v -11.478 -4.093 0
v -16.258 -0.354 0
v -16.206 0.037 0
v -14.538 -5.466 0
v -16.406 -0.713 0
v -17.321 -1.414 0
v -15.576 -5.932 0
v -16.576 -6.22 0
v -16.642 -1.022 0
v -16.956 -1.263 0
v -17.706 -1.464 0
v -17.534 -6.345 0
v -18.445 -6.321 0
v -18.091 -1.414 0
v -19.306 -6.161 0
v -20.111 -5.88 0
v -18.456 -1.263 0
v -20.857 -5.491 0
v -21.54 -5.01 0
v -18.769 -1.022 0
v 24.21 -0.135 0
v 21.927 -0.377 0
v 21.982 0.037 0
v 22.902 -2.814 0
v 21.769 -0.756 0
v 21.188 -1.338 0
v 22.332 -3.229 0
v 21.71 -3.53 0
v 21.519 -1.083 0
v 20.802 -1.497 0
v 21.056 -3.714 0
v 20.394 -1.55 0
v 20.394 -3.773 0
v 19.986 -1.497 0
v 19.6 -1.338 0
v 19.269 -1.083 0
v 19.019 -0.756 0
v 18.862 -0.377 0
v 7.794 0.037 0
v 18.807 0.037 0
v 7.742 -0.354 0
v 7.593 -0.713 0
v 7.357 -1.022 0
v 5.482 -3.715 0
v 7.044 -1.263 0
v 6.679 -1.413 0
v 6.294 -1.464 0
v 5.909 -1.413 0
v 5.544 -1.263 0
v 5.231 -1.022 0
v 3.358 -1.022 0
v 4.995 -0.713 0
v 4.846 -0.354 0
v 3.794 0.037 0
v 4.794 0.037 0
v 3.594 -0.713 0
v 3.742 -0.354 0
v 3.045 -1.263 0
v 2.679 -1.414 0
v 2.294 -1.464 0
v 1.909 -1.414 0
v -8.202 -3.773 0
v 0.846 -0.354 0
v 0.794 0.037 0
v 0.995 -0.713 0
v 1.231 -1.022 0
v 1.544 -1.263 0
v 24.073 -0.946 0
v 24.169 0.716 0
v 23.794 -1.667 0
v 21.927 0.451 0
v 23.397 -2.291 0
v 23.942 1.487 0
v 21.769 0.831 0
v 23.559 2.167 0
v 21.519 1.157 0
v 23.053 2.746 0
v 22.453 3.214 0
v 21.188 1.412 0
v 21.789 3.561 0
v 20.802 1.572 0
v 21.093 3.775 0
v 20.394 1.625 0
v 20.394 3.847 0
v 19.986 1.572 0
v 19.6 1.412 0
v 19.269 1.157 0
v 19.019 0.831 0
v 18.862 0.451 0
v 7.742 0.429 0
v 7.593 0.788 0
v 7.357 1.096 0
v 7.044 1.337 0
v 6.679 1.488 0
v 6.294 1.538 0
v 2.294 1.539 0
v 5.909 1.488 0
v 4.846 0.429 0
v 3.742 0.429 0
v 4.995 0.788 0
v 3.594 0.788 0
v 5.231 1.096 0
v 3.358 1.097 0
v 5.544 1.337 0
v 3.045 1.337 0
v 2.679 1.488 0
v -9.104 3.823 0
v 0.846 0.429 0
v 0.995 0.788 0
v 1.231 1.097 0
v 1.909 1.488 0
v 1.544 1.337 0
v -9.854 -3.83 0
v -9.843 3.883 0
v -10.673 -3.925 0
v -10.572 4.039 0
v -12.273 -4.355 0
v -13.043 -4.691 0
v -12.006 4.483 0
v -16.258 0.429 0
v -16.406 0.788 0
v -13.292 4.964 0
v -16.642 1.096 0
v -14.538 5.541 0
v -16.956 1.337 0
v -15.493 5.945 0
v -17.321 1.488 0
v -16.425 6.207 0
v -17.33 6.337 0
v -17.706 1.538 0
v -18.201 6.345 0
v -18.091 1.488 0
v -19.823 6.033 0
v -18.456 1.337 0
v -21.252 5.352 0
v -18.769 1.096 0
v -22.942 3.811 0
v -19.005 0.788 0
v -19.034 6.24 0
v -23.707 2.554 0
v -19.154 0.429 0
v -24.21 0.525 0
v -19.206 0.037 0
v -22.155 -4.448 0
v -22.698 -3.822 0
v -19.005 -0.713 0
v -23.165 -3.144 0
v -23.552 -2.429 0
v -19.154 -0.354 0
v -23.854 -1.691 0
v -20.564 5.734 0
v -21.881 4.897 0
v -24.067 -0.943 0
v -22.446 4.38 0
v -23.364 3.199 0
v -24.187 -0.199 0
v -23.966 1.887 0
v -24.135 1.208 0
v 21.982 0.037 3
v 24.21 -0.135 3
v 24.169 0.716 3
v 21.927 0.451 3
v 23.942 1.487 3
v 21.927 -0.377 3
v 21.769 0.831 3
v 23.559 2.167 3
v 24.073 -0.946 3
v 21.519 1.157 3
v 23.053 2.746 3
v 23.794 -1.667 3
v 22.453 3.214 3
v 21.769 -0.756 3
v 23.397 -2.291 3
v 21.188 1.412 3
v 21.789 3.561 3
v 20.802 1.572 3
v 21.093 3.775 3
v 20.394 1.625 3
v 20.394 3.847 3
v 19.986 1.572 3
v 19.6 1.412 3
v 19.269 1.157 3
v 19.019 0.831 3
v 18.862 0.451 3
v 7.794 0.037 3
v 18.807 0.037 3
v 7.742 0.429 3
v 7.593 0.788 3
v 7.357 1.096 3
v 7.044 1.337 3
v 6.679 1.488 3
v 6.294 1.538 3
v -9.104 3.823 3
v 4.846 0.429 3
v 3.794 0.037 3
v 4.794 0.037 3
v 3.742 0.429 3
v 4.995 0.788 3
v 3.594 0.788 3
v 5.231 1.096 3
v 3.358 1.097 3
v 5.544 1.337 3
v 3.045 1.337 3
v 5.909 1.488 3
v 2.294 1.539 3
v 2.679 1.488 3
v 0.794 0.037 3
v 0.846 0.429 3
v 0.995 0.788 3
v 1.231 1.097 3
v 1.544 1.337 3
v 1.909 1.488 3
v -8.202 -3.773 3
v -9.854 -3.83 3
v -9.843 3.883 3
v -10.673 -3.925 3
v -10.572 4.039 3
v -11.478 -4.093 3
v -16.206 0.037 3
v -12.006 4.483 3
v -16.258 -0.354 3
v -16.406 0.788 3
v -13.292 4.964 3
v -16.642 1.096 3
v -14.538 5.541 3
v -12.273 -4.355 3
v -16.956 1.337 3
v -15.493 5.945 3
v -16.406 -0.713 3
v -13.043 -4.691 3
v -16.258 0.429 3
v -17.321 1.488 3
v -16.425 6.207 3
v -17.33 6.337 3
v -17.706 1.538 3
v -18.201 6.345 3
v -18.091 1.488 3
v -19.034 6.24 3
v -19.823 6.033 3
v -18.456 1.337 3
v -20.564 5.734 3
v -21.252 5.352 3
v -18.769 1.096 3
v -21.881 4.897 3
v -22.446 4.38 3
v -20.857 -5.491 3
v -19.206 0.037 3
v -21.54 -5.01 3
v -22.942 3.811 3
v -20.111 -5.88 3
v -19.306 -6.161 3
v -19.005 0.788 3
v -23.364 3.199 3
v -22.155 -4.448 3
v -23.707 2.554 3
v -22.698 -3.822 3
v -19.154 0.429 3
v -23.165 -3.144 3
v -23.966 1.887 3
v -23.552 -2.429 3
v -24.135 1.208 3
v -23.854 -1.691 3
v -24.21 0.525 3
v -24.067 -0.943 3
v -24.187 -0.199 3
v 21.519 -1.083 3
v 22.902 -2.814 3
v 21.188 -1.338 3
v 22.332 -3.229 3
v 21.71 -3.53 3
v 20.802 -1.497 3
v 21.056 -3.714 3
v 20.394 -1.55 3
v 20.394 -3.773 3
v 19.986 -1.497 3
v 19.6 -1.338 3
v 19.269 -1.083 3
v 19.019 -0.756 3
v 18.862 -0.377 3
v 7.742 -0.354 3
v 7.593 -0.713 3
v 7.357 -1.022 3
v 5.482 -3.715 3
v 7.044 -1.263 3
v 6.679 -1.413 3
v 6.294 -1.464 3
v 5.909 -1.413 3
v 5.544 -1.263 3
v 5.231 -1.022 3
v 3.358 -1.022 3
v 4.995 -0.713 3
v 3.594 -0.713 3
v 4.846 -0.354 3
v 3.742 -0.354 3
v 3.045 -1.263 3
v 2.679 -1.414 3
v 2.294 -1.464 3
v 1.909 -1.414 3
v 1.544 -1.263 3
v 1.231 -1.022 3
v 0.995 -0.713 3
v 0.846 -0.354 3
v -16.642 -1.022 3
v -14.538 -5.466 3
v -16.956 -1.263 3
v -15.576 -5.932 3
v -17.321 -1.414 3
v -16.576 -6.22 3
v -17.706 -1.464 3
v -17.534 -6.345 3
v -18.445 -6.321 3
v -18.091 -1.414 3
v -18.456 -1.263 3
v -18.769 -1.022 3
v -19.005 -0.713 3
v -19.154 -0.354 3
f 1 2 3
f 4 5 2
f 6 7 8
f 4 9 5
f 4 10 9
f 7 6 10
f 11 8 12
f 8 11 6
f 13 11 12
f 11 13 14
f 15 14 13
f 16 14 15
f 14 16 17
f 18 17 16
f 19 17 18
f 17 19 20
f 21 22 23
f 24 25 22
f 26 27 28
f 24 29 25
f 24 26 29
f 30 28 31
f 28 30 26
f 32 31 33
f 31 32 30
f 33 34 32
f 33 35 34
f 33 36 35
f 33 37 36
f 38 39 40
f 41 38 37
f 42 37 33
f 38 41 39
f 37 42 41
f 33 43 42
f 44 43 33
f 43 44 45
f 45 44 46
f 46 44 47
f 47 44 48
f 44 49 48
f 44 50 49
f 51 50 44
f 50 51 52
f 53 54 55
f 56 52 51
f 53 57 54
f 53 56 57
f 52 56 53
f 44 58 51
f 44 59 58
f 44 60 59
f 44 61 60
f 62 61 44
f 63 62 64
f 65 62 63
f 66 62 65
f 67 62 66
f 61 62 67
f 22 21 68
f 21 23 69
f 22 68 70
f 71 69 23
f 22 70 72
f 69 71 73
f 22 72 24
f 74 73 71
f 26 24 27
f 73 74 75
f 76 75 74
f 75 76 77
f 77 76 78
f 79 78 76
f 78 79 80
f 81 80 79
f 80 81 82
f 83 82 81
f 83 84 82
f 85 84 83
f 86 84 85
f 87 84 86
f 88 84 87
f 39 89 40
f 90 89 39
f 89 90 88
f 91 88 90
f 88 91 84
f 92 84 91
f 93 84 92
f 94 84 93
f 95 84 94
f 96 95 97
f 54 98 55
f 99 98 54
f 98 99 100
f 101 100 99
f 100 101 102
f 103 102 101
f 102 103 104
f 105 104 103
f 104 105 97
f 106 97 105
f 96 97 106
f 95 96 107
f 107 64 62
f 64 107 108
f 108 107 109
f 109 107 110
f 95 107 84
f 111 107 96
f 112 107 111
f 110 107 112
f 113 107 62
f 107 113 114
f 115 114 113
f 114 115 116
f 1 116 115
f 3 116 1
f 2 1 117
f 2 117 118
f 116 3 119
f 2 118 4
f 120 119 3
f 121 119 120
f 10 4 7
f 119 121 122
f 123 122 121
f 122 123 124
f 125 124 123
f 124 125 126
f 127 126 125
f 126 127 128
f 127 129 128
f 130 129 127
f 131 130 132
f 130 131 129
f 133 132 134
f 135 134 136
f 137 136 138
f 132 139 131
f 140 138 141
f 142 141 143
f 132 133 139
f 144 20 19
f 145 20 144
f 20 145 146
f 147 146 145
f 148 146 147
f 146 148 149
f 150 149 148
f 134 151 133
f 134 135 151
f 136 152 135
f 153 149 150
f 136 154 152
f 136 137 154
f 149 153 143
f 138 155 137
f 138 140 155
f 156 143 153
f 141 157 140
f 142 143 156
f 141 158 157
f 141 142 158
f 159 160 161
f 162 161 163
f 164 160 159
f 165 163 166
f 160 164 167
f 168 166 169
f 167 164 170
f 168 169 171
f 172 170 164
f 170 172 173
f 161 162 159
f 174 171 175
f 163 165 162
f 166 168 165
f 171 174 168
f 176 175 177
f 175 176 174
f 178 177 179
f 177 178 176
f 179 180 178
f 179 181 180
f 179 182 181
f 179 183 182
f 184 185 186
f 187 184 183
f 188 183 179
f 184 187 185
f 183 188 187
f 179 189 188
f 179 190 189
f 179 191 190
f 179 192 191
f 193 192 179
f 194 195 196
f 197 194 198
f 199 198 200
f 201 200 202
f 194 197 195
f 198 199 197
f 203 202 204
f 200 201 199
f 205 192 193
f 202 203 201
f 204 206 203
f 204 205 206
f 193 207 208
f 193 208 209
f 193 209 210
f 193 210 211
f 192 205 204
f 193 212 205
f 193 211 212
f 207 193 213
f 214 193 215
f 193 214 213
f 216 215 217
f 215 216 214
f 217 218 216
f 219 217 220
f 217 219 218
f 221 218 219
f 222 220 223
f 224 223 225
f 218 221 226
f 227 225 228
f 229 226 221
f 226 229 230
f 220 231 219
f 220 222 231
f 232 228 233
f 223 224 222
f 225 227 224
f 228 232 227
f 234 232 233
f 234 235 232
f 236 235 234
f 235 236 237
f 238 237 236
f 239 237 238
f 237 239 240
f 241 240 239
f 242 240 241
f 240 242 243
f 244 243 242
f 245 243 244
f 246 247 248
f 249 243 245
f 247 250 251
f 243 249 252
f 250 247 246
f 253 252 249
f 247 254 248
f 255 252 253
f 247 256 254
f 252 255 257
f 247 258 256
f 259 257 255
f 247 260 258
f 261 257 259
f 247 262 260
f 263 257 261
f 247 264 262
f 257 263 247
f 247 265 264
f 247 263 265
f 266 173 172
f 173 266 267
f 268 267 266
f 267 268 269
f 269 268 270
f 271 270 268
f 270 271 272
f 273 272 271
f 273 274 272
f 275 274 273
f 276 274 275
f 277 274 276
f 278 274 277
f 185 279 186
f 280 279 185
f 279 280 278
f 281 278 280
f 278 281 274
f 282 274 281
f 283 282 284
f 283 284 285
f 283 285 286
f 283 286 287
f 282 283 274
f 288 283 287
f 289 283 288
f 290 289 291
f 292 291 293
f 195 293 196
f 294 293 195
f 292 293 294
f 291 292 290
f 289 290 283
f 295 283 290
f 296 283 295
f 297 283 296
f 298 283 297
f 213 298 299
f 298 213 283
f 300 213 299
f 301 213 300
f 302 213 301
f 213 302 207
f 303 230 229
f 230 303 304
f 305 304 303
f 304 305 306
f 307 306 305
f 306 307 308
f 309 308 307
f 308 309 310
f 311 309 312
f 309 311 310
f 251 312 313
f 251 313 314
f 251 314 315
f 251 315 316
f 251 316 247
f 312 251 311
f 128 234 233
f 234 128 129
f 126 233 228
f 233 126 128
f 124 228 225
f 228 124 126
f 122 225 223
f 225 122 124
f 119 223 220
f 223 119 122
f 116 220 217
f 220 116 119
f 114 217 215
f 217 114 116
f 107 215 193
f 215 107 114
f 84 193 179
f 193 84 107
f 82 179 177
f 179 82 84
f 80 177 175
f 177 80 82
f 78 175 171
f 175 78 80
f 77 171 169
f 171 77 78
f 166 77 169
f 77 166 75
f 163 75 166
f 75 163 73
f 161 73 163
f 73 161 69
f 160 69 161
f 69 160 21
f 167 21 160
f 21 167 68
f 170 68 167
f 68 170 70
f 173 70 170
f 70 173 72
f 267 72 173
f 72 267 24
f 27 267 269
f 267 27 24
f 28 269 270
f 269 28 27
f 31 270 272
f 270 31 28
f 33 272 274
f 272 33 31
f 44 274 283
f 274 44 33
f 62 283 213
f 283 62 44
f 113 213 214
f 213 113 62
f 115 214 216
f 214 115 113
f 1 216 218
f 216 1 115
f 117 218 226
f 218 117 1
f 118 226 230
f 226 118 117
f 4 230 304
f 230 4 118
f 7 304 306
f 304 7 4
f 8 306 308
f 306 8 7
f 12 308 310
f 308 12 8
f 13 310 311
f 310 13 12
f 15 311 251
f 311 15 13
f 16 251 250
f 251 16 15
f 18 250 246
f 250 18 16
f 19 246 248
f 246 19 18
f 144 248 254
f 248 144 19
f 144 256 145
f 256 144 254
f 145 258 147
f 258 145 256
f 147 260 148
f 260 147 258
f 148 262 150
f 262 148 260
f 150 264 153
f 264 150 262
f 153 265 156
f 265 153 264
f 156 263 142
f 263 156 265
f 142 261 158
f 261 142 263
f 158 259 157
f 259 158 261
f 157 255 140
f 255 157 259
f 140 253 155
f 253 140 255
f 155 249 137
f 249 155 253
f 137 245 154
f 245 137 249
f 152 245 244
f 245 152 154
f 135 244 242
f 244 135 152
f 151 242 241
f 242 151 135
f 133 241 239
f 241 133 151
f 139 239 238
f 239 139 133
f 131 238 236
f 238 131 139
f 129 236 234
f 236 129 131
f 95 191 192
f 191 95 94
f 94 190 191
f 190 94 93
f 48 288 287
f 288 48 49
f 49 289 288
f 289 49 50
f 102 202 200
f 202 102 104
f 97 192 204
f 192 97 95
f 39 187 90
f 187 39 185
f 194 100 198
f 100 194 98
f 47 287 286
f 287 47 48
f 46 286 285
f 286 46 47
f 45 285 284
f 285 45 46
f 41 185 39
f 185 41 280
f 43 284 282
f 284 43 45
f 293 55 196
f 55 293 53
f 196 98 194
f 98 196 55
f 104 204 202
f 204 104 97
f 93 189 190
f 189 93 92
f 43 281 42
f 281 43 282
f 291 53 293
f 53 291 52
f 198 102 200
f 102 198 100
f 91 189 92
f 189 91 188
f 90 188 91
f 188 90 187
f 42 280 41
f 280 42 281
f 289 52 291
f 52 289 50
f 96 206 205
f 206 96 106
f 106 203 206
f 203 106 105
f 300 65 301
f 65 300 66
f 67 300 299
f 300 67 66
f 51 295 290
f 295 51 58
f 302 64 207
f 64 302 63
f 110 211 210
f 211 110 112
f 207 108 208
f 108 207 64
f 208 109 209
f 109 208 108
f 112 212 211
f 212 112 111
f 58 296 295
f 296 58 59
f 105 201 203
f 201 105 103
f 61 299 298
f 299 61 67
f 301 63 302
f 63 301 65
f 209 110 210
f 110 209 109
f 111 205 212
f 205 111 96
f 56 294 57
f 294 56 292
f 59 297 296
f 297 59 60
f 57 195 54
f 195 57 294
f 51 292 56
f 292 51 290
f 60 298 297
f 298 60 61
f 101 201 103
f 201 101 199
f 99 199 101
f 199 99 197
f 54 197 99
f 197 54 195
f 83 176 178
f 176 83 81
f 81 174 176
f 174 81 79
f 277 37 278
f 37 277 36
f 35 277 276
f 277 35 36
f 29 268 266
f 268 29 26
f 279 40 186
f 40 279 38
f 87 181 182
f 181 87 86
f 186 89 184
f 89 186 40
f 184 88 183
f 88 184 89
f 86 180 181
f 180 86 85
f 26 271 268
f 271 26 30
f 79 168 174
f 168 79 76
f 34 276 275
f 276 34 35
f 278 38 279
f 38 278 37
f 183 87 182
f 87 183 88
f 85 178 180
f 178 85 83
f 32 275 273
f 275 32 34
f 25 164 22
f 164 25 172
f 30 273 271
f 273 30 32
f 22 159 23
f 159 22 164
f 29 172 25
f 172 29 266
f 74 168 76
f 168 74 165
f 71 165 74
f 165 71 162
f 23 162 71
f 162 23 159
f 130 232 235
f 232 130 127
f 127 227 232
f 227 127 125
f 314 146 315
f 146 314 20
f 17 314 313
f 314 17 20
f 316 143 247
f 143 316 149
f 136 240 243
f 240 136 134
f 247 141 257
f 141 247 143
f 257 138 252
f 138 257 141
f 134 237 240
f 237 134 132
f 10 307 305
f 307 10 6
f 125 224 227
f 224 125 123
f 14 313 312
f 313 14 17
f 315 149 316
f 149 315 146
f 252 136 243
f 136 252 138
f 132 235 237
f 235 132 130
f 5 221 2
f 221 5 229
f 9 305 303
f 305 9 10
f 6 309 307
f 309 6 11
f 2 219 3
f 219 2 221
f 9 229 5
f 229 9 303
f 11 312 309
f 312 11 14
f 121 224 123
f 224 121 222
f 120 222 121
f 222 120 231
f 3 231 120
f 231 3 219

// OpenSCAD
// Module names are of the form poly_<inkscape-path-id>().  As a result,
// you can associate a polygon in this OpenSCAD program with the corresponding
// SVG element in the Inkscape document by looking for the XML element with
// the attribute id="inkscape-path-id".

// fudge value is used to ensure that subtracted solids are a tad taller
// in the z dimension than the polygon being subtracted from.  This helps
// keep the resulting .stl file manifold.
fudge = 0.1;

module poly_path873(h)
{
  scale([25.4/96, -25.4/96, 1]) union()
  {
    difference()
    {
       linear_extrude(height=h)
         polygon([[-34.407014,-14.450794],[77.080104,-14.540794],[79.720117,-14.268063],[82.351990,-13.457282],[84.860193,-12.147694],[87.129201,-10.378544],[89.043487,-8.189076],[90.487522,-5.618532],[91.345780,-2.706157],[91.502734,0.508806],[90.984140,3.575420],[89.931539,6.299240],[88.428472,8.659118],[86.558481,10.633906],[84.405108,12.202456],[82.051893,13.343621],[79.582378,14.036254],[77.080104,14.259206],[20.719264,14.041406],[-30.999984,14.259206],[-37.243458,14.475368],[-40.340171,14.834291],[-43.382764,15.468306],[-46.387240,16.459004],[-49.295689,17.729218],[-54.946594,20.659206],[-58.870515,22.419011],[-62.650394,23.508574],[-66.270265,23.980804],[-69.714160,23.888607],[-72.966113,23.284892],[-76.010155,22.222567],[-78.830320,20.754540],[-81.410640,18.933718],[-83.735149,16.813010],[-85.787879,14.445324],[-87.552862,11.883567],[-89.014132,9.180648],[-90.155722,6.389474],[-90.961663,3.562954],[-91.415990,0.753995],[-91.502734,-1.984494],[-91.219703,-4.563829],[-90.579564,-7.133095],[-89.601646,-9.654605],[-88.305282,-12.090673],[-86.709803,-14.403610],[-84.834539,-16.555730],[-82.698821,-18.509346],[-80.321981,-20.226769],[-77.723351,-21.670314],[-74.922260,-22.802293],[-71.938040,-23.585019],[-68.790022,-23.980804],[-65.497537,-23.951961],[-62.079917,-23.460803],[-58.556492,-22.469644],[-54.946594,-20.940794],[-50.235559,-18.760982],[-45.377374,-16.944094],[-39.959034,-15.265257],[-37.200894,-14.675462],[-34.407014,-14.450794]]);
       translate([0, 0, -fudge])
         linear_extrude(height=h+2*fudge)
           polygon([[29.458054,-0.140794],[29.262538,-1.620684],[28.699636,-2.976863],[27.807525,-4.143147],[26.624381,-5.053350],[25.244776,-5.623427],[23.788764,-5.813453],[22.332752,-5.623427],[20.953146,-5.053350],[19.770003,-4.143147],[18.877892,-2.976863],[18.314990,-1.620684],[18.119474,-0.140794],[18.314990,1.339095],[18.877892,2.695274],[19.770003,3.861558],[20.953146,4.771762],[22.332752,5.341838],[23.788764,5.531864],[25.244776,5.341838],[26.624381,4.771762],[27.807525,3.861558],[28.699636,2.695274],[29.262538,1.339095],[29.458054,-0.140794],[29.458054,-0.140794]]);
       translate([0, 0, -fudge])
         linear_extrude(height=h+2*fudge)
           polygon([[14.339944,-0.140794],[14.144852,-1.621074],[13.582179,-2.977690],[12.690112,-4.144405],[11.506837,-5.054981],[10.126974,-5.625303],[8.670655,-5.815410],[7.214335,-5.625303],[5.834472,-5.054981],[4.651198,-4.144405],[3.759131,-2.977690],[3.196458,-1.621074],[3.001366,-0.140794],[3.196458,1.339485],[3.759131,2.696101],[4.651198,3.862816],[5.834472,4.773393],[7.214335,5.343714],[8.670655,5.533821],[10.126974,5.343714],[11.506837,4.773393],[12.690112,3.862816],[13.582179,2.696101],[14.144852,1.339485],[14.339944,-0.140794],[14.339944,-0.140794]]);
       translate([0, 0, -fudge])
         linear_extrude(height=h+2*fudge)
           polygon([[83.080104,-0.140794],[82.872411,-1.706300],[82.276256,-3.140794],[81.332025,-4.374327],[80.080104,-5.336947],[78.620490,-5.939833],[77.080104,-6.140794],[75.539718,-5.939833],[74.080104,-5.336947],[72.828182,-4.374327],[71.883951,-3.140794],[71.287797,-1.706300],[71.080104,-0.140794],[71.287797,1.424711],[71.883951,2.859206],[72.828182,4.092738],[74.080104,5.055358],[75.539718,5.658244],[77.080104,5.859206],[78.620490,5.658244],[80.080104,5.055358],[81.332025,4.092738],[82.276256,2.859206],[82.872411,1.424711],[83.080104,-0.140794]]);
       translate([0, 0, -fudge])
         linear_extrude(height=h+2*fudge)
           polygon([[-61.250604,-0.140794],[-61.445956,-1.620835],[-62.008770,-2.977183],[-62.900864,-4.143633],[-64.084058,-5.053982],[-65.463763,-5.624153],[-66.919894,-5.814210],[-68.376025,-5.624153],[-69.755730,-5.053982],[-70.938925,-4.143633],[-71.831019,-2.977183],[-72.393832,-1.620835],[-72.589184,-0.140794],[-72.393832,1.339246],[-71.831019,2.695594],[-70.938925,3.862044],[-69.755730,4.772393],[-68.376025,5.342564],[-66.919894,5.532621],[-65.463763,5.342564],[-64.084058,4.772393],[-62.900864,3.862044],[-62.008770,2.695594],[-61.445956,1.339246],[-61.250604,-0.140794],[-61.250604,-0.140794]]);
    }
  }
}

module inkscape(h)
{

poly_path873(h);
}

inkscape(3);
